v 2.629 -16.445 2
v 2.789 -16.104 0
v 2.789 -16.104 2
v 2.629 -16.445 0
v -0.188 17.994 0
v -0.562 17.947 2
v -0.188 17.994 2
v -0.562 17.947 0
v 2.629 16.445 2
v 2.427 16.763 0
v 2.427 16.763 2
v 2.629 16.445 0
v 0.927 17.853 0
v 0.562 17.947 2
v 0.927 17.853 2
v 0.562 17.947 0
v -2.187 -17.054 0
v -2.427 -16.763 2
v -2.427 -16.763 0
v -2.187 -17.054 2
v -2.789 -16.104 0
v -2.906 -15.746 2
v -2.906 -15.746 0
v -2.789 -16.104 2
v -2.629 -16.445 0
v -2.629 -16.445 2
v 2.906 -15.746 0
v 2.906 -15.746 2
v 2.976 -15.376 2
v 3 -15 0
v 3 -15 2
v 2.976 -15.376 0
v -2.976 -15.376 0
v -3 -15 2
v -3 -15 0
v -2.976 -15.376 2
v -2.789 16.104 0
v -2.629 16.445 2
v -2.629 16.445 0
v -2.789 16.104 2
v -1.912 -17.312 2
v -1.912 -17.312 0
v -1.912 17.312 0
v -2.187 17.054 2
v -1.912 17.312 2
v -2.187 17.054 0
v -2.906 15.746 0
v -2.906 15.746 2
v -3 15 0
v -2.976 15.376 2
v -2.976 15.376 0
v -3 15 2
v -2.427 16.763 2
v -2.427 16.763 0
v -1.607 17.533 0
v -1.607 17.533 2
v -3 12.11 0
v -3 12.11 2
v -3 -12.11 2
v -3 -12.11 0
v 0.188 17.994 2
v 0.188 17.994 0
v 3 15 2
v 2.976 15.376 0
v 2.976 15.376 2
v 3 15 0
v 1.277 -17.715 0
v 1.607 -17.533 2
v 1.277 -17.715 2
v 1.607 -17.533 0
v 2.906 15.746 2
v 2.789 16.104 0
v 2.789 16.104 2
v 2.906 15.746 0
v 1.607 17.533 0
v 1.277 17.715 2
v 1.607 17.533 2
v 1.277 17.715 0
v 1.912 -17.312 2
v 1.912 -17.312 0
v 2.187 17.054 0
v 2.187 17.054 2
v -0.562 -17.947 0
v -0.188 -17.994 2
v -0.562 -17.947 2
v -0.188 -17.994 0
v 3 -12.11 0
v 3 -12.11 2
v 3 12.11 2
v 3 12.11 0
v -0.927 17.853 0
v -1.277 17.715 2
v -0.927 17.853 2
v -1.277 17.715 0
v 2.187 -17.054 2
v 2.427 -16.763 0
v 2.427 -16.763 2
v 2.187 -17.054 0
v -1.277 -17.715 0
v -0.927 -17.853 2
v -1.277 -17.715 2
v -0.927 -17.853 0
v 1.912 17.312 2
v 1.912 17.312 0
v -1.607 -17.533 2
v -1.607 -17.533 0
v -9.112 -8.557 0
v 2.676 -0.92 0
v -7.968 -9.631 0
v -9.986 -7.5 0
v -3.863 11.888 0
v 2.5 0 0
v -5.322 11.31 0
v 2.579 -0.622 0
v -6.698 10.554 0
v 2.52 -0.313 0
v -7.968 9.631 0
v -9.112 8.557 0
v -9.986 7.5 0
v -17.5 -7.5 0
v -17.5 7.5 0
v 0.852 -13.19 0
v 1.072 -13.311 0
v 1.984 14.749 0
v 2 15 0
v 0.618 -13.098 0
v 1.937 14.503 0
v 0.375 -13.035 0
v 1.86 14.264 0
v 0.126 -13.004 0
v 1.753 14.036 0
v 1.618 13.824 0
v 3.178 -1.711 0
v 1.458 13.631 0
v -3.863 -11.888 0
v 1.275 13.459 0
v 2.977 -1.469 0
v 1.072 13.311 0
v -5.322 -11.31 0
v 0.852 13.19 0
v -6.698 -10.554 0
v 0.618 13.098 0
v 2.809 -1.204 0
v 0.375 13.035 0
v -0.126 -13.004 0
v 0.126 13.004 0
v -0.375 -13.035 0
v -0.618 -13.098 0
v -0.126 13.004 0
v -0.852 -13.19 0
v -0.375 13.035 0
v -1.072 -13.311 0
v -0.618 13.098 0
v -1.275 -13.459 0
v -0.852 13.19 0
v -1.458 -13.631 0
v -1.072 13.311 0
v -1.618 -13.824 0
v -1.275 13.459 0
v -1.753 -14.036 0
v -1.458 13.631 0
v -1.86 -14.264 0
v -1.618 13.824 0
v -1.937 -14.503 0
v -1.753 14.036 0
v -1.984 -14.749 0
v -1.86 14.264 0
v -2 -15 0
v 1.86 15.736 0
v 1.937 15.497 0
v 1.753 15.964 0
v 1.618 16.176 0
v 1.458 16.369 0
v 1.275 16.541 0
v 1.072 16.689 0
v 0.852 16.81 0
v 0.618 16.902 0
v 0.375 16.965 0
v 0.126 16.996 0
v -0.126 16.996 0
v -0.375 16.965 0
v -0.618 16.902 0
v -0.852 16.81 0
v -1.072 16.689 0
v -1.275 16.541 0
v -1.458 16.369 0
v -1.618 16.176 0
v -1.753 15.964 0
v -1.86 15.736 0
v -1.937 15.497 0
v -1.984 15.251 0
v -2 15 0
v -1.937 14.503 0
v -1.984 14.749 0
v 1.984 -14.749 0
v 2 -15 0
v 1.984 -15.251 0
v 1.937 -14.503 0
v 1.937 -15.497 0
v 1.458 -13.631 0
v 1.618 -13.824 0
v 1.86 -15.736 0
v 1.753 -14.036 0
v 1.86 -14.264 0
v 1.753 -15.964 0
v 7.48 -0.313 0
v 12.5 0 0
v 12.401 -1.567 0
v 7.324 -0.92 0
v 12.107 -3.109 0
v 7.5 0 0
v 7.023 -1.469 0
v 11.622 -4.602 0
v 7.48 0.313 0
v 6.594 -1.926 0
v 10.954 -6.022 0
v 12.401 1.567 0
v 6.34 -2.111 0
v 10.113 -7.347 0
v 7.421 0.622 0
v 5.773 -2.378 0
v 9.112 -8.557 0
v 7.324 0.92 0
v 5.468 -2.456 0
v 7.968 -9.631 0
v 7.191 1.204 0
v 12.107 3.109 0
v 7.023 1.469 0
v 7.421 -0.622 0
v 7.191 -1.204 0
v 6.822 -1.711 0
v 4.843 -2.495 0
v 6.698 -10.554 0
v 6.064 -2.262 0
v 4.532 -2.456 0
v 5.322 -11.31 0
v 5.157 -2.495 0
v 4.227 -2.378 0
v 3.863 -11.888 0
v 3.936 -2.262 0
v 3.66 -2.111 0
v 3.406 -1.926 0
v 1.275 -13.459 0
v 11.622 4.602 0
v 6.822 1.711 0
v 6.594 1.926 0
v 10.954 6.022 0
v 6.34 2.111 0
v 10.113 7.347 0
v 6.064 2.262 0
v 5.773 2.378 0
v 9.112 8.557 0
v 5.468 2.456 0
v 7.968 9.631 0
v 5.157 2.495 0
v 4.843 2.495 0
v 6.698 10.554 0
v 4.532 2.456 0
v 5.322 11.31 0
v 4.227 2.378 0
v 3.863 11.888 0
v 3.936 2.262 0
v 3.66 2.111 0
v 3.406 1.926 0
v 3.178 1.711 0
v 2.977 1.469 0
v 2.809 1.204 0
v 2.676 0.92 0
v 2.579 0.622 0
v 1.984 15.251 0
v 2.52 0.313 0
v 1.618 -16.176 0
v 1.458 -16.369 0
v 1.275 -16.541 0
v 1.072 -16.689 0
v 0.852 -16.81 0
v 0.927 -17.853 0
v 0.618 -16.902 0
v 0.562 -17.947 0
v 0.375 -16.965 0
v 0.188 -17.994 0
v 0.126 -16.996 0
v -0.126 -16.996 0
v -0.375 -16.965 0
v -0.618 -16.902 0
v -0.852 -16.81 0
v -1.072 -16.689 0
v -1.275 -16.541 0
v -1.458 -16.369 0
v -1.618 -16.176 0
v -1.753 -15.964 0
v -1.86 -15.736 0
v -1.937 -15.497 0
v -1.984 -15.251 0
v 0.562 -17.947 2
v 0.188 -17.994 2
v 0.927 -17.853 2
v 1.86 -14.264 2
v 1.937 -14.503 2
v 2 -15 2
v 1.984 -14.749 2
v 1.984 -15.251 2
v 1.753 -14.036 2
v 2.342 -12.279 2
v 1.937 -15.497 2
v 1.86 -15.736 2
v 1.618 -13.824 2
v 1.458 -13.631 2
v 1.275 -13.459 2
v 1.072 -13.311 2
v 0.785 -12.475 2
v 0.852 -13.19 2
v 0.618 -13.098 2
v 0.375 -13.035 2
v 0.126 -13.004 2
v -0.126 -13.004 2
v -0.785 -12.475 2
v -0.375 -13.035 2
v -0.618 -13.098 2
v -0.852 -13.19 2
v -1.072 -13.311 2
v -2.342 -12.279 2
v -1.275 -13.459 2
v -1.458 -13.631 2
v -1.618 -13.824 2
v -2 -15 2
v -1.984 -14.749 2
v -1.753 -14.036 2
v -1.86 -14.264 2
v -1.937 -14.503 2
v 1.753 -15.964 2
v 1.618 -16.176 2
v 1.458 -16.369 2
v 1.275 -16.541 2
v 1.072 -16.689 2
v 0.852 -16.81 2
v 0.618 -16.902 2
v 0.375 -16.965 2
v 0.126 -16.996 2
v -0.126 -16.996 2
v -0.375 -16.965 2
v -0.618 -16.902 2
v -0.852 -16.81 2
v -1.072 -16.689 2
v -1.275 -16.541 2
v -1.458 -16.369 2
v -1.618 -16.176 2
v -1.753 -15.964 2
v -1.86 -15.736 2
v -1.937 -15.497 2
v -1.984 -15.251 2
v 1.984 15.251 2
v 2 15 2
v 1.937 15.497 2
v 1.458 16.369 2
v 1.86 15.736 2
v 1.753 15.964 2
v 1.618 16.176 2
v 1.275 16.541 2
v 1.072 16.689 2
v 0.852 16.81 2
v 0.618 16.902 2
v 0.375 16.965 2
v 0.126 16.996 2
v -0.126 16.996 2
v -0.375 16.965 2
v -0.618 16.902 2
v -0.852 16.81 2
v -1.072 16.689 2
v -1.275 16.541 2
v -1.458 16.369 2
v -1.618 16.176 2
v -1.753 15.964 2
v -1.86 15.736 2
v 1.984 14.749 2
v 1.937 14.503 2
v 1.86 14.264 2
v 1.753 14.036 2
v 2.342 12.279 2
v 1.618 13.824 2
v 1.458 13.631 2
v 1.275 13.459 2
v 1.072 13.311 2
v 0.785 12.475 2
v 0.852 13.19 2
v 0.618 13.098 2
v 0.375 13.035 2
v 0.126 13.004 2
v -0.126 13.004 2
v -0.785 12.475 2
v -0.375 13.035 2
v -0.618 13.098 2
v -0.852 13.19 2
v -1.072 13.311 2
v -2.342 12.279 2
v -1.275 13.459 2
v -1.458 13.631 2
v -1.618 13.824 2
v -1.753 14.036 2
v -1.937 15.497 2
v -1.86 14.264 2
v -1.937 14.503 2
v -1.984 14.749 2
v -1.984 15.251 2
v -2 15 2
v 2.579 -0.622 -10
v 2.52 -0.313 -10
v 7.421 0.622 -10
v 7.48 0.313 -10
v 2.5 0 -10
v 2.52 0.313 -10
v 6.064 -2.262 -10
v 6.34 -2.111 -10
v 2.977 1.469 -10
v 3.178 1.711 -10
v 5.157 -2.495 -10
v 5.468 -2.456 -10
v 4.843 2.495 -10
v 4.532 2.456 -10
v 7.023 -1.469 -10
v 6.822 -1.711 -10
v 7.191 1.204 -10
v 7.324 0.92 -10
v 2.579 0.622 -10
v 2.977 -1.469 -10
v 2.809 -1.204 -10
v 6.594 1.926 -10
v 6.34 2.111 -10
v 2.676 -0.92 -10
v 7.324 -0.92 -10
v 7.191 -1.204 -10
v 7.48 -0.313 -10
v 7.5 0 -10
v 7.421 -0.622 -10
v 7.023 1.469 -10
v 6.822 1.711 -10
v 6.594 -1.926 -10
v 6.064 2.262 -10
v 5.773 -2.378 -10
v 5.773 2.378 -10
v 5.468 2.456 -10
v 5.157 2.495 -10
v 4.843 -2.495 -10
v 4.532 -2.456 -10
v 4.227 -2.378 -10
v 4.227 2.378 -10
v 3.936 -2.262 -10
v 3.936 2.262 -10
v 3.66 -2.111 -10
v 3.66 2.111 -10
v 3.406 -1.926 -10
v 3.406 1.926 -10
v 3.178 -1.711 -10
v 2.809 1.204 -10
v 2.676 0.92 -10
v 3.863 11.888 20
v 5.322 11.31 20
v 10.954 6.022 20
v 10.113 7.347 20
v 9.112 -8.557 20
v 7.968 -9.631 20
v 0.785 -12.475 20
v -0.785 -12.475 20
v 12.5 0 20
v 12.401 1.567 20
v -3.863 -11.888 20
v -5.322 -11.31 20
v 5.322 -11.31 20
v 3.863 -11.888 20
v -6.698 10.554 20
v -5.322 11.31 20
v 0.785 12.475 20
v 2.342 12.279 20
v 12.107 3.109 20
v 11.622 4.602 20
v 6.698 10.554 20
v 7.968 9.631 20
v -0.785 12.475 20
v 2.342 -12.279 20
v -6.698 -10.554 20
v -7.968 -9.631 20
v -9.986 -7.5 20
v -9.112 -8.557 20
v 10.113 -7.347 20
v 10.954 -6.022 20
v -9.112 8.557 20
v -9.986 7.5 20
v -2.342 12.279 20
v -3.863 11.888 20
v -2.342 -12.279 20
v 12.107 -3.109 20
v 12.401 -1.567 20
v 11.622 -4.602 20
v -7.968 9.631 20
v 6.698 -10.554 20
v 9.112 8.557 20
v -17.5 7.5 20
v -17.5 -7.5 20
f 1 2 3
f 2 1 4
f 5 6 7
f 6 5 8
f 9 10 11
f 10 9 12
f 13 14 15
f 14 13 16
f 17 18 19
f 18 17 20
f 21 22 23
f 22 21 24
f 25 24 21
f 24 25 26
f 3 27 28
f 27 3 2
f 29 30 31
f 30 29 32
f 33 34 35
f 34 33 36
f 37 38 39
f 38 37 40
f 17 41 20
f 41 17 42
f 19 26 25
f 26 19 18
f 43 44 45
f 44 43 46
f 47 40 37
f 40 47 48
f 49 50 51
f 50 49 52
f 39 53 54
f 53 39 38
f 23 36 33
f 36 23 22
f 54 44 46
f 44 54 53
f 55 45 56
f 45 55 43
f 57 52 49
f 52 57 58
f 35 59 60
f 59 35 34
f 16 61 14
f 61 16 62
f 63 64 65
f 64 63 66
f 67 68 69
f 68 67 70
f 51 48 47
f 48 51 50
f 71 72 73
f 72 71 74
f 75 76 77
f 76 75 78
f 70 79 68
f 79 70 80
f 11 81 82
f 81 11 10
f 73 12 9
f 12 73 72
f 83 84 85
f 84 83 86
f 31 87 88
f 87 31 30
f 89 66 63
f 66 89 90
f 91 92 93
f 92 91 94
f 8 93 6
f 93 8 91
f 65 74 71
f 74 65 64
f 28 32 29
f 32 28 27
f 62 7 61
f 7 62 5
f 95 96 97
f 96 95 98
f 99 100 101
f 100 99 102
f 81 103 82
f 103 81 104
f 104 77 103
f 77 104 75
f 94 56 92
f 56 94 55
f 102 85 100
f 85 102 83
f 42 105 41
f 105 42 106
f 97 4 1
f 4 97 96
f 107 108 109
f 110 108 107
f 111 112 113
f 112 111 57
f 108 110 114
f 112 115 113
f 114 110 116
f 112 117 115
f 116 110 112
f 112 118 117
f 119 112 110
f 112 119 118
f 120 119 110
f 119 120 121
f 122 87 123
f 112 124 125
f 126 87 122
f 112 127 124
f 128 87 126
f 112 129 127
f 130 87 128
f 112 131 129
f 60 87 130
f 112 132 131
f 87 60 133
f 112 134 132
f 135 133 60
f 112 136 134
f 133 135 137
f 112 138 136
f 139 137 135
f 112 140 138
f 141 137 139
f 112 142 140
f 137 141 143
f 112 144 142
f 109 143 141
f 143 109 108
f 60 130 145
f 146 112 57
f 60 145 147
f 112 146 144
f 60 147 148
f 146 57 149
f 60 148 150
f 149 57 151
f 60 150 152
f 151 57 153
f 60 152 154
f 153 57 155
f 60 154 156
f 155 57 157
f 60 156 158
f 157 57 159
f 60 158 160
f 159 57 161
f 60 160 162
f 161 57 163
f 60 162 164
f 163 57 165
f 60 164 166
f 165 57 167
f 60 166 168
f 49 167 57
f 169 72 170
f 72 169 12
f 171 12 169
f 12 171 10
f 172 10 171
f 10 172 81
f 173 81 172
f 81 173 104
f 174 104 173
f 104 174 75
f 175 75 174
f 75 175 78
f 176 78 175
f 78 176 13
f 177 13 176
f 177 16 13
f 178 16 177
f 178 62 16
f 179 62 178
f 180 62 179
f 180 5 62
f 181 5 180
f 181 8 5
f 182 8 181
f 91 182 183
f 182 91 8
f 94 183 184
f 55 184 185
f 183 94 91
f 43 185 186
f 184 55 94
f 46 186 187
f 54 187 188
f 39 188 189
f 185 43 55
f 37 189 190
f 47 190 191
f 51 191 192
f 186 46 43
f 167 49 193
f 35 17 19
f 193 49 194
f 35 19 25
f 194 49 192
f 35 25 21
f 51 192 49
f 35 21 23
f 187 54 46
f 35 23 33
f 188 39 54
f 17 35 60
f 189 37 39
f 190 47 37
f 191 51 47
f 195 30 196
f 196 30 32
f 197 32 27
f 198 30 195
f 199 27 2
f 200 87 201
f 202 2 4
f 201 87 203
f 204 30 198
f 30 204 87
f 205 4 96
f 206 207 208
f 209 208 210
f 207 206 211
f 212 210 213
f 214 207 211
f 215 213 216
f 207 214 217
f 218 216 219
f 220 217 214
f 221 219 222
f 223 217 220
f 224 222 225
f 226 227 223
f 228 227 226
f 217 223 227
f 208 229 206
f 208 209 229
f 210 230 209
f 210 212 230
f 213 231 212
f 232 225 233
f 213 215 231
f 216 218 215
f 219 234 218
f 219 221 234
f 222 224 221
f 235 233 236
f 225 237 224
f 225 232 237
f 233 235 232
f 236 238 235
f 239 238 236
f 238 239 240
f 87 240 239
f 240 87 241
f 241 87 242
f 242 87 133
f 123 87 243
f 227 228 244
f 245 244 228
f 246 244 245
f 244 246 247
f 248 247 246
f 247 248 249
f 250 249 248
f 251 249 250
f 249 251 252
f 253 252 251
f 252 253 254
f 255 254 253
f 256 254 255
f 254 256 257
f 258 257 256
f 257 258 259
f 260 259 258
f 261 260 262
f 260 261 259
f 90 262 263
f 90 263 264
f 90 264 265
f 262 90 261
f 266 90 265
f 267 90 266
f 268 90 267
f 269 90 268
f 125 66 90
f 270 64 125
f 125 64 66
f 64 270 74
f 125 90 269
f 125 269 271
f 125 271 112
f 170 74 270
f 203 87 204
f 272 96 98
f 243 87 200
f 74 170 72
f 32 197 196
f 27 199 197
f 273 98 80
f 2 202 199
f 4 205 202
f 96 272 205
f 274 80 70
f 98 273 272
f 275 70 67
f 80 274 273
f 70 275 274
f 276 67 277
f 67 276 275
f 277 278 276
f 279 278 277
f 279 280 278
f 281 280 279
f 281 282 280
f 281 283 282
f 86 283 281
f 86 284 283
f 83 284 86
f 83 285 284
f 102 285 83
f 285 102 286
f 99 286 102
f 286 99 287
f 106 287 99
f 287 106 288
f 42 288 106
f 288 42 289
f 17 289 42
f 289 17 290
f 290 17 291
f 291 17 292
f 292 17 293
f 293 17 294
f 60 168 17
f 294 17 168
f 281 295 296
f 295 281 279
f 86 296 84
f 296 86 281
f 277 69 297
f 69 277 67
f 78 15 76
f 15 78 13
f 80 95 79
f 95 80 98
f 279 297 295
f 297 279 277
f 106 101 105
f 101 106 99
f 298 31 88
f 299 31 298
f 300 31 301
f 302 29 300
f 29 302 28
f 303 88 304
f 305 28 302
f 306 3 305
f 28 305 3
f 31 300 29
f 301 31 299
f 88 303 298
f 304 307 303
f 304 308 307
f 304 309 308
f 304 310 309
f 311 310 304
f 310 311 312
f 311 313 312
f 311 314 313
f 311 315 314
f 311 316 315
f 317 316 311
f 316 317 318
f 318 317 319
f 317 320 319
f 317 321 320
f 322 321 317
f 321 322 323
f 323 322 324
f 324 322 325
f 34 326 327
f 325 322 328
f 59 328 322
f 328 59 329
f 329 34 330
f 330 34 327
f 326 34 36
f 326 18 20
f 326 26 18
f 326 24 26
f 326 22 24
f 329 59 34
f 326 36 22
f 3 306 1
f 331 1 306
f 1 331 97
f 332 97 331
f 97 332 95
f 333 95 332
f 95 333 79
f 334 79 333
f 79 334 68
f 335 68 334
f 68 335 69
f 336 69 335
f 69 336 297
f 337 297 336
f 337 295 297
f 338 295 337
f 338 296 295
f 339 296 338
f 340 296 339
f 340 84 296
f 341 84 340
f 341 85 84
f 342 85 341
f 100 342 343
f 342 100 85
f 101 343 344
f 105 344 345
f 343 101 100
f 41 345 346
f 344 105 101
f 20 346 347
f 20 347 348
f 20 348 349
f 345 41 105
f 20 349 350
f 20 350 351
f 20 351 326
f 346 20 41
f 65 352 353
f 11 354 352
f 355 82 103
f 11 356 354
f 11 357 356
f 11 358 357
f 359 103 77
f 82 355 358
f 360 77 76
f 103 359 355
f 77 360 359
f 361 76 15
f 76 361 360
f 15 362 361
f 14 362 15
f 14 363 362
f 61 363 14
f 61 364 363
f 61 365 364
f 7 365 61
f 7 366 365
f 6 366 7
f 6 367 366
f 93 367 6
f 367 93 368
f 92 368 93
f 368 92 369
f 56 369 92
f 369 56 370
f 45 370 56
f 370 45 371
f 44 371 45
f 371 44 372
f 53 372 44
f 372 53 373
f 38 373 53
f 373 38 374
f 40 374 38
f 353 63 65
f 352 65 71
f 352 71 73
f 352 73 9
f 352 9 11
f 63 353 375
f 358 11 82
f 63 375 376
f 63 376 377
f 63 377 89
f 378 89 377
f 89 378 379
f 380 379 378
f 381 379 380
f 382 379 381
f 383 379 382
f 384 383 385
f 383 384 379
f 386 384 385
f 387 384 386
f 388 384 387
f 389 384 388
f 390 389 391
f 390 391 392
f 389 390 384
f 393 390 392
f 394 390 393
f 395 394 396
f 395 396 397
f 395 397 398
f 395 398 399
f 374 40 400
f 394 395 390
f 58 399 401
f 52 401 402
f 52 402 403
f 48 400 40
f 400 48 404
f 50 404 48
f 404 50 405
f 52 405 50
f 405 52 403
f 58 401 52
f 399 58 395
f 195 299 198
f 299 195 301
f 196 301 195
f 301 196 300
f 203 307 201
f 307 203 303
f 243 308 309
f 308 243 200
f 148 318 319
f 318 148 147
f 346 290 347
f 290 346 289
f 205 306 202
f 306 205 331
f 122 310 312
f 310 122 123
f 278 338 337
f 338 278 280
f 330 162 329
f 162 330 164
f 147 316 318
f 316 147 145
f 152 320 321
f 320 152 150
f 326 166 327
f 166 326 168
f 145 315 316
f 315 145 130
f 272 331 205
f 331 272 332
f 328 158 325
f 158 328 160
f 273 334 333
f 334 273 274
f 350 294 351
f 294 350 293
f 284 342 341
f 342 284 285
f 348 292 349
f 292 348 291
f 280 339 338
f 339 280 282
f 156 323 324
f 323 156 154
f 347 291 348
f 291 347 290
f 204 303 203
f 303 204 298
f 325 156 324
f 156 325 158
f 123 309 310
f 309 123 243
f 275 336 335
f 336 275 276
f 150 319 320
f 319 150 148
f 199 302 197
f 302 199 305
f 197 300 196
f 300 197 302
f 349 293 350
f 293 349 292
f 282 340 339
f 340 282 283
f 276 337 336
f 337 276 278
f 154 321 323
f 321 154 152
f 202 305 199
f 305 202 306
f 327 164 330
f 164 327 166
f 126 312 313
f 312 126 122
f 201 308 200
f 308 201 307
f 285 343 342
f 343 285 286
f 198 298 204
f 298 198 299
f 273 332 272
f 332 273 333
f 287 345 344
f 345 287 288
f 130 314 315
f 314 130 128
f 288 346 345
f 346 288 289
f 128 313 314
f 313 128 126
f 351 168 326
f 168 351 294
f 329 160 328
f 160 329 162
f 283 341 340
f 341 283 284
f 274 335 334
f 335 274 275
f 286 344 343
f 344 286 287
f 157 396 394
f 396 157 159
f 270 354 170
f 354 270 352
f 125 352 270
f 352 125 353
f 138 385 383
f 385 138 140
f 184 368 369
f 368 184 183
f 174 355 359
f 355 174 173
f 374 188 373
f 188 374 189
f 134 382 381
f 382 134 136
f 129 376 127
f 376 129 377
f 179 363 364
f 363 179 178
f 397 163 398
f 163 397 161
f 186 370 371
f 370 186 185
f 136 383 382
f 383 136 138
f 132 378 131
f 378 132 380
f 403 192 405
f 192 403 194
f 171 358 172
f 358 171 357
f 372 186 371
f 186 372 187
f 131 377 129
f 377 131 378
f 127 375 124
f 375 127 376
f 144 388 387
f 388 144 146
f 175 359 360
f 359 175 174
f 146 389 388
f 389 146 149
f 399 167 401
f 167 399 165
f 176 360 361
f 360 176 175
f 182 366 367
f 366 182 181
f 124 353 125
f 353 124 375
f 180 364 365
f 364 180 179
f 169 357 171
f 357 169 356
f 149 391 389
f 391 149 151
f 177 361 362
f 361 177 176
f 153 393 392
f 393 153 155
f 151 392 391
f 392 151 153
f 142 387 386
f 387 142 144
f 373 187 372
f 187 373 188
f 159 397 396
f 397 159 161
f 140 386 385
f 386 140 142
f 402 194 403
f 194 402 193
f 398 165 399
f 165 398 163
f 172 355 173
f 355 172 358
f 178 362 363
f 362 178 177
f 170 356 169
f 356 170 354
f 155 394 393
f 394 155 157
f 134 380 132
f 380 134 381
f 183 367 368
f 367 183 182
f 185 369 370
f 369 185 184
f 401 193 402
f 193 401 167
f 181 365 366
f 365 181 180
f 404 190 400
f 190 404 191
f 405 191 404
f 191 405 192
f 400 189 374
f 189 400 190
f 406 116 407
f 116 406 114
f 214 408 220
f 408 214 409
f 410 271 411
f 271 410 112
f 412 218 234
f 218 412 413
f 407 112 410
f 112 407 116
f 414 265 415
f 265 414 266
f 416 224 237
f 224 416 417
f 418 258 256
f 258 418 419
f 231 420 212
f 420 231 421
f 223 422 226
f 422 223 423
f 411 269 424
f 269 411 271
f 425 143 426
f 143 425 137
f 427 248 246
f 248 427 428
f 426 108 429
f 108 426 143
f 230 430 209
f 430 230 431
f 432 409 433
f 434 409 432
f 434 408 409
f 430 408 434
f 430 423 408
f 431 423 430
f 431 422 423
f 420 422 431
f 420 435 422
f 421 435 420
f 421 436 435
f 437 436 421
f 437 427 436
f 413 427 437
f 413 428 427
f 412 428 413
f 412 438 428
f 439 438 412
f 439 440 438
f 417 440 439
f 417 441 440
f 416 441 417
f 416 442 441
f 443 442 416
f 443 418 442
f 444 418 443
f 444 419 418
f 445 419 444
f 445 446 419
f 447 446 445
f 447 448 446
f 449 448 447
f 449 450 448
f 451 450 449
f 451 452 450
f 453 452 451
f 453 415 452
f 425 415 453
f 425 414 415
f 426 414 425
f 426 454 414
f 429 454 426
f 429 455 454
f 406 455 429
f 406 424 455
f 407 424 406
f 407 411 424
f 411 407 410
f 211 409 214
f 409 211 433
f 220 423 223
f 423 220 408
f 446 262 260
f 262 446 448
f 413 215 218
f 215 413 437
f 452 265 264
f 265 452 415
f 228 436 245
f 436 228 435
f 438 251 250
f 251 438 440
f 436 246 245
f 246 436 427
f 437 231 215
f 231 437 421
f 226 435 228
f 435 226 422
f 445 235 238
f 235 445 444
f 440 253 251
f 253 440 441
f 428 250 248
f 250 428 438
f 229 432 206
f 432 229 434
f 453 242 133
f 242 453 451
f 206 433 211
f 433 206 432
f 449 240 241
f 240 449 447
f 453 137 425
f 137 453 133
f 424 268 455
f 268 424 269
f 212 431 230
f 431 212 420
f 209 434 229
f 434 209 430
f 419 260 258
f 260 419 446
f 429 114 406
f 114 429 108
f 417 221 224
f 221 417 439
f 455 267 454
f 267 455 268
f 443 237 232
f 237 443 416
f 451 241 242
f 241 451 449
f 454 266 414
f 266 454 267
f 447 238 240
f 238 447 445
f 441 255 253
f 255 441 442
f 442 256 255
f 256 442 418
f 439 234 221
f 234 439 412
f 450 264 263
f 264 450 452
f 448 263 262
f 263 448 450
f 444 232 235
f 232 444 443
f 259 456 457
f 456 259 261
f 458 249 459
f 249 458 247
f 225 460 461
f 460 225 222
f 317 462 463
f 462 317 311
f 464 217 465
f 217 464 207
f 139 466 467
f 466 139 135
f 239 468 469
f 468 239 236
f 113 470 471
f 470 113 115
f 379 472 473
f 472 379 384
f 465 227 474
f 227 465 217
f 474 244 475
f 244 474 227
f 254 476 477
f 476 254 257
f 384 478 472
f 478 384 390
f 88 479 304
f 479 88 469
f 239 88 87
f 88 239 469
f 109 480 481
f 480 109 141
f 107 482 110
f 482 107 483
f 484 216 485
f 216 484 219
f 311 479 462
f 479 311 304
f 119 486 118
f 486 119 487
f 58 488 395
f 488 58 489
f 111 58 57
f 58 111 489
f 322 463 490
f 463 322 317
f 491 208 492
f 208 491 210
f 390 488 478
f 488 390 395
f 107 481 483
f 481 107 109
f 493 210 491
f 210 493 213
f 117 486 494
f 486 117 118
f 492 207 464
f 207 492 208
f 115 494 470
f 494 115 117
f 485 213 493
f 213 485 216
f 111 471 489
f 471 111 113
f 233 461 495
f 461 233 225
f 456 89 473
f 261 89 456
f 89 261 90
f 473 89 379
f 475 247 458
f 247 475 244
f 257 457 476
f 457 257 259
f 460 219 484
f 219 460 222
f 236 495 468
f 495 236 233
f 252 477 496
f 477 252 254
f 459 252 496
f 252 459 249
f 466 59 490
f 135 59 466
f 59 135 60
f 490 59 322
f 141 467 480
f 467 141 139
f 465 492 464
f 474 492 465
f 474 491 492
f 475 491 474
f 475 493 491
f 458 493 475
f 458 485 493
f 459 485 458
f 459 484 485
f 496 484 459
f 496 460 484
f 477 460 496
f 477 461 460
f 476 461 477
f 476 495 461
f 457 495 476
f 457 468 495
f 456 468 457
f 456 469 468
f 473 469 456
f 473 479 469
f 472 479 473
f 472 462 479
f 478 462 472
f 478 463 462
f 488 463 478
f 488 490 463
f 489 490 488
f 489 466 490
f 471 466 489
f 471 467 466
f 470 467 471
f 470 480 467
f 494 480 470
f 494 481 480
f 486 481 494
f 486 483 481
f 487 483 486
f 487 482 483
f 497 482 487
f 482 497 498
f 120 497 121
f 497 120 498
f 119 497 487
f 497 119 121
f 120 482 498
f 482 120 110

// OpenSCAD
$fn = 50;

bolt_pattern = 30;
diameter = 25;
height = 20;

module flange() {
        
    difference() {
        linear_extrude(2) hull() {
            translate([0, -bolt_pattern/2]) circle(d=6);
            translate([0, bolt_pattern/2]) circle(d=6);
        }
        translate([0, -bolt_pattern/2]) cylinder(d=4, h=2);
        translate([0, bolt_pattern/2]) cylinder(d=4, h=2);
        
    }
}

module shaft() {
    translate([5, 0, -10]) cylinder(h = 10, d = 5);    
}

module body() {
    cylinder(h = height, d = diameter);
}   

module wiring_block() {
    translate([-diameter/2,0, height/2]) cube(center=true, [10, 15, height]);
}

flange();
shaft();
body();
wiring_block();
